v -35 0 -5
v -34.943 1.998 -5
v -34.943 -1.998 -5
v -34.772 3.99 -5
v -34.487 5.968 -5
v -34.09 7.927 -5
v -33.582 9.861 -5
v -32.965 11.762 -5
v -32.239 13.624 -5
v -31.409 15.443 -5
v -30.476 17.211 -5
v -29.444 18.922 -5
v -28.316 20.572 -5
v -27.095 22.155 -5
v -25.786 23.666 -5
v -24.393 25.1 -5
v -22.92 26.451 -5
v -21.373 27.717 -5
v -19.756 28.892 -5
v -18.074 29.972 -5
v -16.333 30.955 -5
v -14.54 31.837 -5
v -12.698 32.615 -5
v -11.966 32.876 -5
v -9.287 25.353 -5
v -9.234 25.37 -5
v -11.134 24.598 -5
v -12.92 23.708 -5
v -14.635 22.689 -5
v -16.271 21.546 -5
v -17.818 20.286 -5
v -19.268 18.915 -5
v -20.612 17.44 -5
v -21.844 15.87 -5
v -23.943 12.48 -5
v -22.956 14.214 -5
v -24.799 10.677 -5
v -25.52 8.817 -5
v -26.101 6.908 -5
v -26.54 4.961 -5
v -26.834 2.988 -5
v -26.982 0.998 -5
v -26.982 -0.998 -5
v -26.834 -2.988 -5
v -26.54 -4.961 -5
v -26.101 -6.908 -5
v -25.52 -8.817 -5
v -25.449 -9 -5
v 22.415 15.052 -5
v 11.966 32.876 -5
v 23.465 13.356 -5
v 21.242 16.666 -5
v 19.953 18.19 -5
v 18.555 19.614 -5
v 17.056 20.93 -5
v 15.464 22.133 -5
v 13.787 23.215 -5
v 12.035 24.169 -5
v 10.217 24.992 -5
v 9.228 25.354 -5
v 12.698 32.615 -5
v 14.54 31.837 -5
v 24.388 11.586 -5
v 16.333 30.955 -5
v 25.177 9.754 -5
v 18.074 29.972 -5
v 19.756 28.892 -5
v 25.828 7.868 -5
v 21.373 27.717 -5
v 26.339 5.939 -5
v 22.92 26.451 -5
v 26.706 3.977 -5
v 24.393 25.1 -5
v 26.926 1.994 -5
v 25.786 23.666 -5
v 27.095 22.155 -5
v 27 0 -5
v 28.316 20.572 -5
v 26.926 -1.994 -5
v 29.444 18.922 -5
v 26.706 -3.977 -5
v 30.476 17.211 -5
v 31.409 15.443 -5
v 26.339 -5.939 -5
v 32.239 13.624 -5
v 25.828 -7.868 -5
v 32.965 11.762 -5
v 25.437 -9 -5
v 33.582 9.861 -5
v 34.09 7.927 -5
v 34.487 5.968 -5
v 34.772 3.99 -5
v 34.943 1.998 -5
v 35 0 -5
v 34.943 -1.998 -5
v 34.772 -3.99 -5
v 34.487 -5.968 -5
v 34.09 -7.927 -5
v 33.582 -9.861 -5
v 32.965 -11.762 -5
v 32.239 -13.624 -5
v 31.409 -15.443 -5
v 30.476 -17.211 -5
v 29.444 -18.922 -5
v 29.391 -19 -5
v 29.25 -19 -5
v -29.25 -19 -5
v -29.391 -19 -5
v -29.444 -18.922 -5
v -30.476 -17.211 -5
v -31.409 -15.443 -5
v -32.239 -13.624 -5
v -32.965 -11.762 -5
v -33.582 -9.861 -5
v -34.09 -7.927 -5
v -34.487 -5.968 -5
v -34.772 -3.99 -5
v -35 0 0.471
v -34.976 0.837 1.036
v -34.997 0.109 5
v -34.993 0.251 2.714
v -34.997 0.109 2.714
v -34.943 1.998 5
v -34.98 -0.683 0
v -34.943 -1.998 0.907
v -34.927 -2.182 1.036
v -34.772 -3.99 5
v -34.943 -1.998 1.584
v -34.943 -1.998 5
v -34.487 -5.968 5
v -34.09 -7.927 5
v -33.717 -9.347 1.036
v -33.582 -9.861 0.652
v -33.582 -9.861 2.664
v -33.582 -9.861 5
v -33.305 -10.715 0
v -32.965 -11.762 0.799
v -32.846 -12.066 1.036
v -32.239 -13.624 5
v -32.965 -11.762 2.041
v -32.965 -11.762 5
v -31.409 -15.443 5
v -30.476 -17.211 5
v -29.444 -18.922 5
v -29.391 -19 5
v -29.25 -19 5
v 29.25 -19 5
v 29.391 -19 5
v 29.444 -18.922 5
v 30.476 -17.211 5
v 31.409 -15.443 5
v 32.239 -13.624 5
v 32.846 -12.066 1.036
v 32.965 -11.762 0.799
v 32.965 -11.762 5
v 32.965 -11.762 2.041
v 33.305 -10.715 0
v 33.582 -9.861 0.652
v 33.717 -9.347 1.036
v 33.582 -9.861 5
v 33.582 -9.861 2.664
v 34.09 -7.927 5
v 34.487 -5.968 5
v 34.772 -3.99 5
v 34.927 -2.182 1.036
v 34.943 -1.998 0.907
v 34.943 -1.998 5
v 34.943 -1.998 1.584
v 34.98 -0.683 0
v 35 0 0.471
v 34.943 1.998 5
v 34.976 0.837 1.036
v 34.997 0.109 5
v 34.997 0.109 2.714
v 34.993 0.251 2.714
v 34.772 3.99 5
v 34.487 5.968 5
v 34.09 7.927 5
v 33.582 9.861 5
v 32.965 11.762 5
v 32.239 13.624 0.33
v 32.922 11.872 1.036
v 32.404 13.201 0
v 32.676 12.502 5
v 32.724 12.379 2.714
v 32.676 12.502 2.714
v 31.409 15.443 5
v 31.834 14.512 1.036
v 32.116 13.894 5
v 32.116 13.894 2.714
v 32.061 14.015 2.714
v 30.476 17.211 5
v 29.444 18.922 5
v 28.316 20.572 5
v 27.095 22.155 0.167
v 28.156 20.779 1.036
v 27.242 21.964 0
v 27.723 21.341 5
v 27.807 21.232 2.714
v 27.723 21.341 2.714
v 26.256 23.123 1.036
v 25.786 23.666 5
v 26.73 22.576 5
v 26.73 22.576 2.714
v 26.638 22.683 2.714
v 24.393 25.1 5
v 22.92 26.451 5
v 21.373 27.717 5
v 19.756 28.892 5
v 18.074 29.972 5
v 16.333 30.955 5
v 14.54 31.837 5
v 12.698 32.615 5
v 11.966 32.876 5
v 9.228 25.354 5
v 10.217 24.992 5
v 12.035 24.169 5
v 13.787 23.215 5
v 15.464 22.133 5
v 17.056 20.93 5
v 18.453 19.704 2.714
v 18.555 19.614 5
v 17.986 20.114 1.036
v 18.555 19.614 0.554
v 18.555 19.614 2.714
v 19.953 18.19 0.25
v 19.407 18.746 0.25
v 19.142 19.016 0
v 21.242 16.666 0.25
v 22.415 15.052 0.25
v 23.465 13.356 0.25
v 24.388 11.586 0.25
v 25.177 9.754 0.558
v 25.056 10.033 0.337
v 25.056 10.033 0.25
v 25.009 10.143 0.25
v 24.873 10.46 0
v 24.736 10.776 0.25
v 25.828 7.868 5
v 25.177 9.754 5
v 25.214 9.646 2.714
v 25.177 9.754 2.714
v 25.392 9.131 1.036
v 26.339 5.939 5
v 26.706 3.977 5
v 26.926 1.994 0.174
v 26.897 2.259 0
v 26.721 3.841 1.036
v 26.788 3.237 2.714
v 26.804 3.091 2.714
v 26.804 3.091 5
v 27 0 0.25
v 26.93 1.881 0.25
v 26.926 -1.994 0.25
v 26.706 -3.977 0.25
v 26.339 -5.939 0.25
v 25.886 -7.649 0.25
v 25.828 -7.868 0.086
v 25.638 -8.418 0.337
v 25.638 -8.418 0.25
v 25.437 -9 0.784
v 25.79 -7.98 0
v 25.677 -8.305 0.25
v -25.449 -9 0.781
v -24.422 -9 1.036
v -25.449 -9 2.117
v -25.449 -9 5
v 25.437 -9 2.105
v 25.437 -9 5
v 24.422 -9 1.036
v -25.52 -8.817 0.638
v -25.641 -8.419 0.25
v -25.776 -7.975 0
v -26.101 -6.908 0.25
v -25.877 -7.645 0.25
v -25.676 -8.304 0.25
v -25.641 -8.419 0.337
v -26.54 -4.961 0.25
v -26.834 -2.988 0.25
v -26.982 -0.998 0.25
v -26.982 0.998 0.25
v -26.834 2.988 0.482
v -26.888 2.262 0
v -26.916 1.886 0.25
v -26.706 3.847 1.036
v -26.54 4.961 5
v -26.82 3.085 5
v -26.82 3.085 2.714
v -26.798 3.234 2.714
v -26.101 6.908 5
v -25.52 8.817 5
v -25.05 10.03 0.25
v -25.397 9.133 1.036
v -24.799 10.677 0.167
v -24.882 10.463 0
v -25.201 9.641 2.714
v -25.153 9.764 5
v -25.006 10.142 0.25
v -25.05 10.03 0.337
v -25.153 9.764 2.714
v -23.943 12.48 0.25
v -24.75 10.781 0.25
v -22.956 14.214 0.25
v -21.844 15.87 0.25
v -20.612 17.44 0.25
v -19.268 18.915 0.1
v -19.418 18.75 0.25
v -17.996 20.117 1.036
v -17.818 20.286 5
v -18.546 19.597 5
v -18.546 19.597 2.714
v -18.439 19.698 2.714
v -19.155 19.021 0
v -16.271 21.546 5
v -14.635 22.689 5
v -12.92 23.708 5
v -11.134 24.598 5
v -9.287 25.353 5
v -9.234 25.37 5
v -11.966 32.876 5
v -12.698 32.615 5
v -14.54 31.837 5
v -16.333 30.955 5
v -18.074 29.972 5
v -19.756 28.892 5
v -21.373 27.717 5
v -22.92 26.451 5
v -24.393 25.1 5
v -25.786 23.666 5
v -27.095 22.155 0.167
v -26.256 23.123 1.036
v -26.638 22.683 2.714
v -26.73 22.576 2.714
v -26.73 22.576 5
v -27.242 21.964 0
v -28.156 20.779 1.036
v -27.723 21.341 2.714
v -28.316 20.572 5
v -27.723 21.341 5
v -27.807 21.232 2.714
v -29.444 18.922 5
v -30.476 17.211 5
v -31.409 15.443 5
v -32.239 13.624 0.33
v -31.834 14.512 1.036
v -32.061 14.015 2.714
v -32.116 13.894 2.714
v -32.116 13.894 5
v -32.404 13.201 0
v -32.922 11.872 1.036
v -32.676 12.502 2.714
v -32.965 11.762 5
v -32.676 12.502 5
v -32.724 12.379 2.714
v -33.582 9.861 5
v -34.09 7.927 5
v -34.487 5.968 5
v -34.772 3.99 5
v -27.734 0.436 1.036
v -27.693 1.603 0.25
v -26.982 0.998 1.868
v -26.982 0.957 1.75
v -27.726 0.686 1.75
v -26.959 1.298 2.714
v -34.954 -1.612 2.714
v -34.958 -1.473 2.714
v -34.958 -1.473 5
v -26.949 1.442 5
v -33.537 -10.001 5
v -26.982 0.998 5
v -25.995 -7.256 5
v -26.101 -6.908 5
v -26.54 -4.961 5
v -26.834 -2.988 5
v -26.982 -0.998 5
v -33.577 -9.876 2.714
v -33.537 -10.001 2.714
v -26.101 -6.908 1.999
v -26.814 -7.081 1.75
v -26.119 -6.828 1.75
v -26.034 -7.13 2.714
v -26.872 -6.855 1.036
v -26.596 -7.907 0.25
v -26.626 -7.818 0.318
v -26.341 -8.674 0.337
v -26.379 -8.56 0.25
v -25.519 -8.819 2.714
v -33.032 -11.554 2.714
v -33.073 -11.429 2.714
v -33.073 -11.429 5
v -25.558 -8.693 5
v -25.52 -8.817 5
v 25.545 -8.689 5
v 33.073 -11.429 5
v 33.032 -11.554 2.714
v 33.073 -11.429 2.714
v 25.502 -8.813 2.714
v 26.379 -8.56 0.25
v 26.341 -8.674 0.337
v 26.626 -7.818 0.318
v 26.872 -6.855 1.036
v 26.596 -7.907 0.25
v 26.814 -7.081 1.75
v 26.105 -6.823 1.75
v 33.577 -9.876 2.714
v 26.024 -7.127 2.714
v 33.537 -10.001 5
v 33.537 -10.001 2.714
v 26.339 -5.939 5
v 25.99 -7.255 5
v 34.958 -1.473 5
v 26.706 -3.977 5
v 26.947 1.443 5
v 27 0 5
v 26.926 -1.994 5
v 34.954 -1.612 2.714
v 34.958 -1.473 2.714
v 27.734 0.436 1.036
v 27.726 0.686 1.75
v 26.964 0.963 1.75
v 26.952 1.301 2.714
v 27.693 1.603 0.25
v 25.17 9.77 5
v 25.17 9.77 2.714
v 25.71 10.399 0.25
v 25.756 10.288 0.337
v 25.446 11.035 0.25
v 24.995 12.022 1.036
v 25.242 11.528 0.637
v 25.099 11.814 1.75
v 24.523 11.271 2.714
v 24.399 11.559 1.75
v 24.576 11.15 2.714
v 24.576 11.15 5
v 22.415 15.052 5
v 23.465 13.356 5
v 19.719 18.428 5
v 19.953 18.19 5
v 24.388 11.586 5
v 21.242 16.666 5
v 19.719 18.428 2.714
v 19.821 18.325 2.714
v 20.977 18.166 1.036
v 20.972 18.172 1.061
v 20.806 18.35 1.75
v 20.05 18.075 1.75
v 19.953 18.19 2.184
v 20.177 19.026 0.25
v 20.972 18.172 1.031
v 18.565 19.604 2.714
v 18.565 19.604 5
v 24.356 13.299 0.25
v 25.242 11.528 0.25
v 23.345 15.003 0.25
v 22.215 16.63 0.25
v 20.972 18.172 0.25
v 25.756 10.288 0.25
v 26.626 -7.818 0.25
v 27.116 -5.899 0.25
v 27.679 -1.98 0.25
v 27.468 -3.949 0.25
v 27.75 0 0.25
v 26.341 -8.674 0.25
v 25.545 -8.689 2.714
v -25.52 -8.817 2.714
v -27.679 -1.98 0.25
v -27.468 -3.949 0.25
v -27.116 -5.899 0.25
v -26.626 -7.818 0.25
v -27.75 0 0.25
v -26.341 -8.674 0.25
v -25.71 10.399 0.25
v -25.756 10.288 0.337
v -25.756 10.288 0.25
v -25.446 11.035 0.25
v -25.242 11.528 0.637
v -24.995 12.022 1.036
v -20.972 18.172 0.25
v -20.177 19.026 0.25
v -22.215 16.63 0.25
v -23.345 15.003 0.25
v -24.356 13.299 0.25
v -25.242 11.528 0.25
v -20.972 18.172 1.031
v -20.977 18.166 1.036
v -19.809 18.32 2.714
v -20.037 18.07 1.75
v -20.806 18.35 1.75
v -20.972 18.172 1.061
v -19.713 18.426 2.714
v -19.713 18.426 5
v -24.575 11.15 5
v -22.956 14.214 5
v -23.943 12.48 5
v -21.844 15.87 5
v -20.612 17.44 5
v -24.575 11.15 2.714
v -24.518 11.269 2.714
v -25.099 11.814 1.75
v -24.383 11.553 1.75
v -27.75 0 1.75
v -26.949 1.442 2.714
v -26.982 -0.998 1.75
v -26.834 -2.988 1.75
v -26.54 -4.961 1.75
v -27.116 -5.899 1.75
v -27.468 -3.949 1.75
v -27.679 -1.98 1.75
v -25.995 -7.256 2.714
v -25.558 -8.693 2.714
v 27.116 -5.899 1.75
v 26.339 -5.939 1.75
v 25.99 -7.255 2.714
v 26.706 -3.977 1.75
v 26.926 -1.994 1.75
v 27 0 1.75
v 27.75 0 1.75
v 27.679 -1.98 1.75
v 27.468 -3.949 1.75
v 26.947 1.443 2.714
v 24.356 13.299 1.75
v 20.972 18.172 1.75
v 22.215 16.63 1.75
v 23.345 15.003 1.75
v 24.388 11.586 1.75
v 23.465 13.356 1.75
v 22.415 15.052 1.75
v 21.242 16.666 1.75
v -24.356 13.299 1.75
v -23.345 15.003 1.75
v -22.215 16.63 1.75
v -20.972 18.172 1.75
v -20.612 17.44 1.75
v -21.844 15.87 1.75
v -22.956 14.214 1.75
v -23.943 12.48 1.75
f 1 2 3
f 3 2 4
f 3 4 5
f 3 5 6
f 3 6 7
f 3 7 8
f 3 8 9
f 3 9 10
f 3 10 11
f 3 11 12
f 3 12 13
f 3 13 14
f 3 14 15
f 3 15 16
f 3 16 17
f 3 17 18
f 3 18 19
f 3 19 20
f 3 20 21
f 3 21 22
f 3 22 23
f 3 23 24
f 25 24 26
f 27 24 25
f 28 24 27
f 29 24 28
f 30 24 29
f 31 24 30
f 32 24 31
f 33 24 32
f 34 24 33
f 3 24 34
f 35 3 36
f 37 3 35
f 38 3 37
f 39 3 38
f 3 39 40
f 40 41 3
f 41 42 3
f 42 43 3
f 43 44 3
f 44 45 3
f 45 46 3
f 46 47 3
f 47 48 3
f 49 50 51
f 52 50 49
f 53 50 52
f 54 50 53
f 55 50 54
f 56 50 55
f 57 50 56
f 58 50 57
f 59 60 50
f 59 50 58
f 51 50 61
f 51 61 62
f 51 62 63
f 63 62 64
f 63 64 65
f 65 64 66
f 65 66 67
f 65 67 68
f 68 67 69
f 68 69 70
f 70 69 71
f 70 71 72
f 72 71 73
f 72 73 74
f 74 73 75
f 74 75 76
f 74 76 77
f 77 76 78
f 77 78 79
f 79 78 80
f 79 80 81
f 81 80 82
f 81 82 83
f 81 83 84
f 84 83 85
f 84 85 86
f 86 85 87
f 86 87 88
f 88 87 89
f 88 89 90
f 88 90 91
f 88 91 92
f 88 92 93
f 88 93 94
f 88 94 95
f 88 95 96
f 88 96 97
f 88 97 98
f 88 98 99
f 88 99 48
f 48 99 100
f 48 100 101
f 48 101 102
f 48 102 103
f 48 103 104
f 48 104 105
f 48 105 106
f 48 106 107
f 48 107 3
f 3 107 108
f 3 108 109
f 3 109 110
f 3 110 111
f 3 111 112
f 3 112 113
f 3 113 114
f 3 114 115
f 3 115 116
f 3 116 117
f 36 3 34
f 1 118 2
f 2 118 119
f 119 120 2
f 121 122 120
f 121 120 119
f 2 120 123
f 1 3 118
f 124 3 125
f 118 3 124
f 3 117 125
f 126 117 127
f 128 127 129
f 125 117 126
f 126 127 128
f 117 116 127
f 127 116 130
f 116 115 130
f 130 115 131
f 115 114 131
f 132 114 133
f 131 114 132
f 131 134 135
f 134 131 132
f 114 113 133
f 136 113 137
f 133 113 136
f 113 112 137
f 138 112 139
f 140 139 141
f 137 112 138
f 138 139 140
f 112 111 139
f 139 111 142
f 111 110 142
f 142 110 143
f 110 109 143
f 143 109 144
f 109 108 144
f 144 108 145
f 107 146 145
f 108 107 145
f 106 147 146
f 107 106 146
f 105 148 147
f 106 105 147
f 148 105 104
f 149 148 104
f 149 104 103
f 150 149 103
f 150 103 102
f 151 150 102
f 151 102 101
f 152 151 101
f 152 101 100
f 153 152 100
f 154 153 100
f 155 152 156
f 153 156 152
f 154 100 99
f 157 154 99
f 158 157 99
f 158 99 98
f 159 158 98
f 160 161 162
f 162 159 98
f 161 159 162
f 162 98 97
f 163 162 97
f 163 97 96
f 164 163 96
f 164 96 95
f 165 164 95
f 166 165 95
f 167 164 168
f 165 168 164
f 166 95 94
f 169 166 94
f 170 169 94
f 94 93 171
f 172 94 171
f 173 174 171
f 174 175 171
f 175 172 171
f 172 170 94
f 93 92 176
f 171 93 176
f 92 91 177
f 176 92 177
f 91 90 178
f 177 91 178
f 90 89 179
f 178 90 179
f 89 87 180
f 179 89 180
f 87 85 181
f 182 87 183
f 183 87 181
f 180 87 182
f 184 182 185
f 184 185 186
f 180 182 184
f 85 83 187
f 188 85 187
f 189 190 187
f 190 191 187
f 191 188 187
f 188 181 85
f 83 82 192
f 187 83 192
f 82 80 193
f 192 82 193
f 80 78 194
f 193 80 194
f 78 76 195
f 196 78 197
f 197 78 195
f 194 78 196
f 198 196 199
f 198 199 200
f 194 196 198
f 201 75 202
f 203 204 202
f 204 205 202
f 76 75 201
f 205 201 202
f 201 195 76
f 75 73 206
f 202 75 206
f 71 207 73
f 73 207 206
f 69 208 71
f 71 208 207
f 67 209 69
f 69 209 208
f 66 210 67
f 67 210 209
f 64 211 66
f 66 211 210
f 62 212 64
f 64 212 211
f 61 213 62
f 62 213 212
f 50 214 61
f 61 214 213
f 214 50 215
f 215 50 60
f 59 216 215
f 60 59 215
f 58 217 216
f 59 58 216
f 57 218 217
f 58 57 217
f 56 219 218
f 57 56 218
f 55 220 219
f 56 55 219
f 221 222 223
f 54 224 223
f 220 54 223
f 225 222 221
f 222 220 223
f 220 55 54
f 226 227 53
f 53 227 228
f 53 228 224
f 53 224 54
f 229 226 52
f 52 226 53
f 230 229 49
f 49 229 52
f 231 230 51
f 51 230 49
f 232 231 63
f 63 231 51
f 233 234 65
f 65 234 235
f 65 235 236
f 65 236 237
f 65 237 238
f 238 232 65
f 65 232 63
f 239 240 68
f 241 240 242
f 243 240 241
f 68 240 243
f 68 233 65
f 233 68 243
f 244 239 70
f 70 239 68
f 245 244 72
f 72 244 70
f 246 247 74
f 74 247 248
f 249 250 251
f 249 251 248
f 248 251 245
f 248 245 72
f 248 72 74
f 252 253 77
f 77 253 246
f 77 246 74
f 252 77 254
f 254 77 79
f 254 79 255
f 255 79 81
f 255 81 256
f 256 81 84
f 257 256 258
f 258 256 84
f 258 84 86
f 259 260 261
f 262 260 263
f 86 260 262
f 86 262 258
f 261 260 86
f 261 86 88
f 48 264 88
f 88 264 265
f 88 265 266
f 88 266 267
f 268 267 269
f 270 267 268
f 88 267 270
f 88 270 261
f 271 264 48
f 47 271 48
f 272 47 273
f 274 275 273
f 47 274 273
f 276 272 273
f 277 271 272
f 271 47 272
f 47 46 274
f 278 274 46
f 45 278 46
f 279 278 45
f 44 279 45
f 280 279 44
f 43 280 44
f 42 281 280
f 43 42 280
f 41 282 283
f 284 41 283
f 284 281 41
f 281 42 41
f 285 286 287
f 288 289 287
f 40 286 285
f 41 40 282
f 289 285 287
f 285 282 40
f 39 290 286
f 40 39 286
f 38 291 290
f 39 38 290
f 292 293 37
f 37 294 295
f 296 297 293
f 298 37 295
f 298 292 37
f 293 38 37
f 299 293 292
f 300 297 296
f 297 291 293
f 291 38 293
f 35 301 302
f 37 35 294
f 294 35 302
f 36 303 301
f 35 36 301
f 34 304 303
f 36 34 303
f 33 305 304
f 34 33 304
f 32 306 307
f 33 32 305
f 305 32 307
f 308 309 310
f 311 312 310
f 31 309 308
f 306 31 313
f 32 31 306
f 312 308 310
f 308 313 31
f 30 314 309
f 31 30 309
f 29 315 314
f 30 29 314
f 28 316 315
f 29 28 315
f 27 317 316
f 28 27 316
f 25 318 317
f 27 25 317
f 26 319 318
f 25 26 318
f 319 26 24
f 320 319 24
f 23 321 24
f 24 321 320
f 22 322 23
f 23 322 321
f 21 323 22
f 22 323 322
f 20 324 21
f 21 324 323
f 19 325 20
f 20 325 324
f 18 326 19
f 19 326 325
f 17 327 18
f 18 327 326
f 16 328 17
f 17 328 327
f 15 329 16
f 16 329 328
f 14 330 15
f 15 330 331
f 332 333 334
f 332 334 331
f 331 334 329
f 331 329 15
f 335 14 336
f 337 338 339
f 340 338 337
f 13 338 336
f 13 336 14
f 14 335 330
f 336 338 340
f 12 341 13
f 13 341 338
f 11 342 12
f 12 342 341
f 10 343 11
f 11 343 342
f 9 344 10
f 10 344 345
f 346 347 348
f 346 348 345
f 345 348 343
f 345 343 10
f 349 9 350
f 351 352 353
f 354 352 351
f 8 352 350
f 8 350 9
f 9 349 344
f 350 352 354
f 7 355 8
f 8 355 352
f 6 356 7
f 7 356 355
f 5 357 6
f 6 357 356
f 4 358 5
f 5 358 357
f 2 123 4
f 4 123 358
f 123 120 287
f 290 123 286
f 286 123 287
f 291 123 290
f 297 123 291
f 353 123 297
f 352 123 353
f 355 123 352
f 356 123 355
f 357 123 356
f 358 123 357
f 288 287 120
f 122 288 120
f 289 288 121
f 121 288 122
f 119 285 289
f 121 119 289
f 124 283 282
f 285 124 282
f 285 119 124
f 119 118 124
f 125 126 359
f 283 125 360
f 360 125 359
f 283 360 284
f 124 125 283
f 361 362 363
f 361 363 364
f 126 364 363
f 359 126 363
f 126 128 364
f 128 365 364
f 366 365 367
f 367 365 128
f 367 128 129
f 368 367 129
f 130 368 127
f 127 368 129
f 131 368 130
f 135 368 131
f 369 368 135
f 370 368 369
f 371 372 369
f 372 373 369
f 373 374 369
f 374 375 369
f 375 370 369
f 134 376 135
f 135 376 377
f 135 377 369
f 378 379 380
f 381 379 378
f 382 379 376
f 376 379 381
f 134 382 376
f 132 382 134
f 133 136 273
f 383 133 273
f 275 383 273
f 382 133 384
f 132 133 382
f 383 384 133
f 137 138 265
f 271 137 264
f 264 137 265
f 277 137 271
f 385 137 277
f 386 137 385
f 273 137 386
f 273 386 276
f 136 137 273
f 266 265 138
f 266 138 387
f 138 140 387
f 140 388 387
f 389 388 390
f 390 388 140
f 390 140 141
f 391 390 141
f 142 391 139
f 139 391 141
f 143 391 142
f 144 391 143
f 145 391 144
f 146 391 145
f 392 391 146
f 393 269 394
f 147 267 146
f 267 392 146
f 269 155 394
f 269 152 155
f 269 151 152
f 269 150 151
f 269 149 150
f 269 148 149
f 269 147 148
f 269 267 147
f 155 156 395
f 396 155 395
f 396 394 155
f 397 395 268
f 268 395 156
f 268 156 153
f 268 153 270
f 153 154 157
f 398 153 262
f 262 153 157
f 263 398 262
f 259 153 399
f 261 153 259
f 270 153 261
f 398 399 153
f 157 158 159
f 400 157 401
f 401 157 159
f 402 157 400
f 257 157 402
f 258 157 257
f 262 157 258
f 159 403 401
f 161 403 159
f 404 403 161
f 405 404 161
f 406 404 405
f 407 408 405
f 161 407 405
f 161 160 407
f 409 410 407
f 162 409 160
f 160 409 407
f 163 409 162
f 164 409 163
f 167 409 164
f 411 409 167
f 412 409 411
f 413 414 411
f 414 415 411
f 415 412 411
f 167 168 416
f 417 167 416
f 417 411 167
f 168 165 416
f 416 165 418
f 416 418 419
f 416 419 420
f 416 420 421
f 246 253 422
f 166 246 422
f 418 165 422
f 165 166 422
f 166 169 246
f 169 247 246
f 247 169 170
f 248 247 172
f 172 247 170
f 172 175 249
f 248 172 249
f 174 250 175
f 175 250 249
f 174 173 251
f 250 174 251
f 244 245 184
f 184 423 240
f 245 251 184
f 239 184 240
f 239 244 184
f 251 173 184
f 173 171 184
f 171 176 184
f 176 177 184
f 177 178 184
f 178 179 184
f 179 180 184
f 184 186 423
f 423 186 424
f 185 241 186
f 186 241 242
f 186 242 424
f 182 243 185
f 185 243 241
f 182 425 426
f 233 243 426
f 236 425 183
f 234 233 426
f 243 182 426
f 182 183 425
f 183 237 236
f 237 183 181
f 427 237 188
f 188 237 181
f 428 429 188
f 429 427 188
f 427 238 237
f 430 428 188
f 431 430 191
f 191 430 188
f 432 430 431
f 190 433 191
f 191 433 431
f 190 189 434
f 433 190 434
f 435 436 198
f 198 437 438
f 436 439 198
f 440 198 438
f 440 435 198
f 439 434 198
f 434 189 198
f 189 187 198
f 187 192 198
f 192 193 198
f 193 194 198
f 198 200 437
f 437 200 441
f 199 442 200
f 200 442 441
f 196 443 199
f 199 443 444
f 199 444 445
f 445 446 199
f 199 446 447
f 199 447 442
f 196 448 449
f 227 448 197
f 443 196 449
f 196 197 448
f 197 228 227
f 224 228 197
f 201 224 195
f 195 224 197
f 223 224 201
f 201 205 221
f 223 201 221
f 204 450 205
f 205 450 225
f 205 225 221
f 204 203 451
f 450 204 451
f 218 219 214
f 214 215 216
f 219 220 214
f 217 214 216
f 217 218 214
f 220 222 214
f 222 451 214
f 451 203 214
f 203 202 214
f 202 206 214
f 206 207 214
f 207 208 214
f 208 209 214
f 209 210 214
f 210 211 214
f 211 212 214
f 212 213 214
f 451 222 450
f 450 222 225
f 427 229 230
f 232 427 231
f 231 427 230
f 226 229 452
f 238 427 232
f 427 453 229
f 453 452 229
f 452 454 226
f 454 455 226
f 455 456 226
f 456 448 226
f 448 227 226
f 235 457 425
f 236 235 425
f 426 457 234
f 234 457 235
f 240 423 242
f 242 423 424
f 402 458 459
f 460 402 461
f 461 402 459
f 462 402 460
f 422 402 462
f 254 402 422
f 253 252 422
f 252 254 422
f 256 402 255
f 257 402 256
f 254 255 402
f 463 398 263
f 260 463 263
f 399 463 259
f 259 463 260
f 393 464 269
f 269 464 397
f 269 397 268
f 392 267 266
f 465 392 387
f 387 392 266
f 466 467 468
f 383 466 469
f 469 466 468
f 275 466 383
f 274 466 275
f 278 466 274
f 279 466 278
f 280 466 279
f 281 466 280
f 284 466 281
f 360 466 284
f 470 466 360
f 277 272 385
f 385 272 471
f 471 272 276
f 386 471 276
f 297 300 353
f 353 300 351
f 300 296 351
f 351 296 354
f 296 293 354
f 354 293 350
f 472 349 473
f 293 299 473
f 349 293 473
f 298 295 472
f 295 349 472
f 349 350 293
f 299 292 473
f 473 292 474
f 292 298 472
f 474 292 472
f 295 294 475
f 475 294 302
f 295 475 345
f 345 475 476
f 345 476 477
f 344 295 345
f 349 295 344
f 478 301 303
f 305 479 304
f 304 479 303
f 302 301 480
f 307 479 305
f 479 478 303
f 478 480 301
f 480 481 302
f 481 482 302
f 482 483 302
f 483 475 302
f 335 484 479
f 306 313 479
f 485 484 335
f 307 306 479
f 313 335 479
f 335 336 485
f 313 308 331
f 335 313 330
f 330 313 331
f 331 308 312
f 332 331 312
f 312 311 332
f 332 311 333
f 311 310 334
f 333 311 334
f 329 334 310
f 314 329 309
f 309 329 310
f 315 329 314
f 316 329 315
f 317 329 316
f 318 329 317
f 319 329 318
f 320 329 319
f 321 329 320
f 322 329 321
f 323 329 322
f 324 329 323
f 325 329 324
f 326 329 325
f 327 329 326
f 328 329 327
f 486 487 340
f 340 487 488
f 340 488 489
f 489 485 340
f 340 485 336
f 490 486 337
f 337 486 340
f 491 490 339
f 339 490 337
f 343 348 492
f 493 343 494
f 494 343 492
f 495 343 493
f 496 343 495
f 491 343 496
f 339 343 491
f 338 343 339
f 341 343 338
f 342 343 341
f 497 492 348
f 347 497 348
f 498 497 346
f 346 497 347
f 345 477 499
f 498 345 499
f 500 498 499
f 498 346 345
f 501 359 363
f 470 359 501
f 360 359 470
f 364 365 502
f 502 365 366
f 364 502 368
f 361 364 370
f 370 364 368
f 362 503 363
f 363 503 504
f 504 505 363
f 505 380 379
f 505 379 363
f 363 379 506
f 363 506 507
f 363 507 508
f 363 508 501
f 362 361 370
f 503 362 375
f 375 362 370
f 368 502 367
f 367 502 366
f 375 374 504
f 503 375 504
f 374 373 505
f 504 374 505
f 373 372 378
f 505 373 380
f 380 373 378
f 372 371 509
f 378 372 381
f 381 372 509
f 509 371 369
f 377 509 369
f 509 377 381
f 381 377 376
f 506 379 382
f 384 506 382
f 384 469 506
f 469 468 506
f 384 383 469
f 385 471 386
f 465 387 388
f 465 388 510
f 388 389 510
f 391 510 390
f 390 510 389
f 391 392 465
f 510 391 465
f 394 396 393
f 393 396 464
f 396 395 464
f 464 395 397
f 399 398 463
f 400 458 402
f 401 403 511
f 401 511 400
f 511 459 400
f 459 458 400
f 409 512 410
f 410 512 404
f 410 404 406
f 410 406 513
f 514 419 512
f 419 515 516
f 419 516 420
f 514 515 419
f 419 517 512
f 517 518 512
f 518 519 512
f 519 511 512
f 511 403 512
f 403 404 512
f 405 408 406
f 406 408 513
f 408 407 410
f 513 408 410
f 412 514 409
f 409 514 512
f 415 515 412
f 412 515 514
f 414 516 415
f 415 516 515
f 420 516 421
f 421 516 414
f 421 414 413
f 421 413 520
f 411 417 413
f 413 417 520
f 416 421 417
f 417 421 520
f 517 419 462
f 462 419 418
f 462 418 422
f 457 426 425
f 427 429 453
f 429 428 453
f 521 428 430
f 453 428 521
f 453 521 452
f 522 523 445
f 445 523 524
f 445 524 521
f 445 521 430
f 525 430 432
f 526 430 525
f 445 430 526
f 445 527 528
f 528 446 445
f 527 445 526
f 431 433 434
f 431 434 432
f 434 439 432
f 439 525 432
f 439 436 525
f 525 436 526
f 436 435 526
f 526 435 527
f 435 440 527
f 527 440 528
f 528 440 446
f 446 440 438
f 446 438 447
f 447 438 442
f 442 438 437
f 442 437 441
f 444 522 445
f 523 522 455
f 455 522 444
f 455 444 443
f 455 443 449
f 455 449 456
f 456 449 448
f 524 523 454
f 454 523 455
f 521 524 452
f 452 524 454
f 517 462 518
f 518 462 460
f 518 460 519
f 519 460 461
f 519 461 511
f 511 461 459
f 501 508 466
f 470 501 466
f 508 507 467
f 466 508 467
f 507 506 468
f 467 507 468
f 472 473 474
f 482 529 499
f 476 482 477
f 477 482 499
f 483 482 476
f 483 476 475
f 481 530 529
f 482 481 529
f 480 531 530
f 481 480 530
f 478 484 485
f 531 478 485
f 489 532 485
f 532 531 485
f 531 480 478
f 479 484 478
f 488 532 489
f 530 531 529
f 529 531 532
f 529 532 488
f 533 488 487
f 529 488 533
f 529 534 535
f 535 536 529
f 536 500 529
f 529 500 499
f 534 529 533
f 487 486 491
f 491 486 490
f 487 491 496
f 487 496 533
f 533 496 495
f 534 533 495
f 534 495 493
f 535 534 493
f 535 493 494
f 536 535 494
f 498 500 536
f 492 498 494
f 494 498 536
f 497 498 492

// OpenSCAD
use <MCAD/triangles.scad>

$fa=0.01;
$f =0.5;

ringw=10;
angle=40;

module nt55() {
	cylinder(r=10,h=145,center=true);
}

module se2a() {
	cylinder(r=11,h=162,center=true);
}

module ring() {
	difference() {
		union() {
			difference() {
				cylinder(r=35,h=ringw,center=true);
				cylinder(r=27,h=ringw+2,center=true);
				translate([0,-29,0]) {
					cube([72,20,ringw+2],center=true);
				}
			}
			
			translate([0,-14.,0]) {
				cube([58.5,10,ringw],center=true);
			}
		}
	}
}

module innerNotches() {
	intersection() {
		difference() {
			color([0,1,1])
			cylinder(r=27.75,h=1.5,center=true);
			
			color([0,1,1])
			cylinder(r=26.5,h=2.5,center=true);
		
			translate([0,-19.1,0]) {
				cube([58.5,20,ringw],center=true);
			}
			topNotch();
		}
		
		translate([0,6.5,0]) {
			rotate([0,0,20])
			cube([75,10.5,1.5],center=true);
			rotate([0,0,-20])
			cube([75,10.5,1.5],center=true);
		}
	}
}

module notchset() {
	difference() {
		union() {
			translate([0,5,1])
				cube([75,1.5,10],center=true);
			translate([0,-5,1])
				cube([75,1.5,10],center=true);
	
			translate([0,5,-3.5])
			rotate([0,90,0])
				cylinder(r=1.5,h=100,center=true);
			translate([0,-5,-3.5])
			rotate([0,90,0])
				cylinder(r=1.5,h=100,center=true);
		}
		
		union() {
			translate([0,5,0])
				cube([43,5,5],center=true);
			translate([0,-5,0])
				cube([43,5,5],center=true);
		}
	}
}

module notches() {		
	color([0,0,1])
	translate([-2,6,5])
	rotate([0,0,20])
		notchset(); 
	color([0,1,0])
	translate([2,6,5])
	rotate([0,0,-20])
		notchset();
}

module topNotch() {
	union() {
		translate([0,40,-7])
		rotate([0,0,-90])
			a_triangle(angle/2,40,14);
		translate([0,40,7])
		rotate([0,180,-270])
			a_triangle(angle/2,40,14);		
		translate([0,31,0])
			cube([1,10,14],center=true);
	}
}

module shockMountEnd() {
	difference() {
		ring();
		topNotch();
		notches();
		translate([0,0,1])
			innerNotches();
	}
}

//translate([0,6,0])
//nt55();

shockMountEnd();
